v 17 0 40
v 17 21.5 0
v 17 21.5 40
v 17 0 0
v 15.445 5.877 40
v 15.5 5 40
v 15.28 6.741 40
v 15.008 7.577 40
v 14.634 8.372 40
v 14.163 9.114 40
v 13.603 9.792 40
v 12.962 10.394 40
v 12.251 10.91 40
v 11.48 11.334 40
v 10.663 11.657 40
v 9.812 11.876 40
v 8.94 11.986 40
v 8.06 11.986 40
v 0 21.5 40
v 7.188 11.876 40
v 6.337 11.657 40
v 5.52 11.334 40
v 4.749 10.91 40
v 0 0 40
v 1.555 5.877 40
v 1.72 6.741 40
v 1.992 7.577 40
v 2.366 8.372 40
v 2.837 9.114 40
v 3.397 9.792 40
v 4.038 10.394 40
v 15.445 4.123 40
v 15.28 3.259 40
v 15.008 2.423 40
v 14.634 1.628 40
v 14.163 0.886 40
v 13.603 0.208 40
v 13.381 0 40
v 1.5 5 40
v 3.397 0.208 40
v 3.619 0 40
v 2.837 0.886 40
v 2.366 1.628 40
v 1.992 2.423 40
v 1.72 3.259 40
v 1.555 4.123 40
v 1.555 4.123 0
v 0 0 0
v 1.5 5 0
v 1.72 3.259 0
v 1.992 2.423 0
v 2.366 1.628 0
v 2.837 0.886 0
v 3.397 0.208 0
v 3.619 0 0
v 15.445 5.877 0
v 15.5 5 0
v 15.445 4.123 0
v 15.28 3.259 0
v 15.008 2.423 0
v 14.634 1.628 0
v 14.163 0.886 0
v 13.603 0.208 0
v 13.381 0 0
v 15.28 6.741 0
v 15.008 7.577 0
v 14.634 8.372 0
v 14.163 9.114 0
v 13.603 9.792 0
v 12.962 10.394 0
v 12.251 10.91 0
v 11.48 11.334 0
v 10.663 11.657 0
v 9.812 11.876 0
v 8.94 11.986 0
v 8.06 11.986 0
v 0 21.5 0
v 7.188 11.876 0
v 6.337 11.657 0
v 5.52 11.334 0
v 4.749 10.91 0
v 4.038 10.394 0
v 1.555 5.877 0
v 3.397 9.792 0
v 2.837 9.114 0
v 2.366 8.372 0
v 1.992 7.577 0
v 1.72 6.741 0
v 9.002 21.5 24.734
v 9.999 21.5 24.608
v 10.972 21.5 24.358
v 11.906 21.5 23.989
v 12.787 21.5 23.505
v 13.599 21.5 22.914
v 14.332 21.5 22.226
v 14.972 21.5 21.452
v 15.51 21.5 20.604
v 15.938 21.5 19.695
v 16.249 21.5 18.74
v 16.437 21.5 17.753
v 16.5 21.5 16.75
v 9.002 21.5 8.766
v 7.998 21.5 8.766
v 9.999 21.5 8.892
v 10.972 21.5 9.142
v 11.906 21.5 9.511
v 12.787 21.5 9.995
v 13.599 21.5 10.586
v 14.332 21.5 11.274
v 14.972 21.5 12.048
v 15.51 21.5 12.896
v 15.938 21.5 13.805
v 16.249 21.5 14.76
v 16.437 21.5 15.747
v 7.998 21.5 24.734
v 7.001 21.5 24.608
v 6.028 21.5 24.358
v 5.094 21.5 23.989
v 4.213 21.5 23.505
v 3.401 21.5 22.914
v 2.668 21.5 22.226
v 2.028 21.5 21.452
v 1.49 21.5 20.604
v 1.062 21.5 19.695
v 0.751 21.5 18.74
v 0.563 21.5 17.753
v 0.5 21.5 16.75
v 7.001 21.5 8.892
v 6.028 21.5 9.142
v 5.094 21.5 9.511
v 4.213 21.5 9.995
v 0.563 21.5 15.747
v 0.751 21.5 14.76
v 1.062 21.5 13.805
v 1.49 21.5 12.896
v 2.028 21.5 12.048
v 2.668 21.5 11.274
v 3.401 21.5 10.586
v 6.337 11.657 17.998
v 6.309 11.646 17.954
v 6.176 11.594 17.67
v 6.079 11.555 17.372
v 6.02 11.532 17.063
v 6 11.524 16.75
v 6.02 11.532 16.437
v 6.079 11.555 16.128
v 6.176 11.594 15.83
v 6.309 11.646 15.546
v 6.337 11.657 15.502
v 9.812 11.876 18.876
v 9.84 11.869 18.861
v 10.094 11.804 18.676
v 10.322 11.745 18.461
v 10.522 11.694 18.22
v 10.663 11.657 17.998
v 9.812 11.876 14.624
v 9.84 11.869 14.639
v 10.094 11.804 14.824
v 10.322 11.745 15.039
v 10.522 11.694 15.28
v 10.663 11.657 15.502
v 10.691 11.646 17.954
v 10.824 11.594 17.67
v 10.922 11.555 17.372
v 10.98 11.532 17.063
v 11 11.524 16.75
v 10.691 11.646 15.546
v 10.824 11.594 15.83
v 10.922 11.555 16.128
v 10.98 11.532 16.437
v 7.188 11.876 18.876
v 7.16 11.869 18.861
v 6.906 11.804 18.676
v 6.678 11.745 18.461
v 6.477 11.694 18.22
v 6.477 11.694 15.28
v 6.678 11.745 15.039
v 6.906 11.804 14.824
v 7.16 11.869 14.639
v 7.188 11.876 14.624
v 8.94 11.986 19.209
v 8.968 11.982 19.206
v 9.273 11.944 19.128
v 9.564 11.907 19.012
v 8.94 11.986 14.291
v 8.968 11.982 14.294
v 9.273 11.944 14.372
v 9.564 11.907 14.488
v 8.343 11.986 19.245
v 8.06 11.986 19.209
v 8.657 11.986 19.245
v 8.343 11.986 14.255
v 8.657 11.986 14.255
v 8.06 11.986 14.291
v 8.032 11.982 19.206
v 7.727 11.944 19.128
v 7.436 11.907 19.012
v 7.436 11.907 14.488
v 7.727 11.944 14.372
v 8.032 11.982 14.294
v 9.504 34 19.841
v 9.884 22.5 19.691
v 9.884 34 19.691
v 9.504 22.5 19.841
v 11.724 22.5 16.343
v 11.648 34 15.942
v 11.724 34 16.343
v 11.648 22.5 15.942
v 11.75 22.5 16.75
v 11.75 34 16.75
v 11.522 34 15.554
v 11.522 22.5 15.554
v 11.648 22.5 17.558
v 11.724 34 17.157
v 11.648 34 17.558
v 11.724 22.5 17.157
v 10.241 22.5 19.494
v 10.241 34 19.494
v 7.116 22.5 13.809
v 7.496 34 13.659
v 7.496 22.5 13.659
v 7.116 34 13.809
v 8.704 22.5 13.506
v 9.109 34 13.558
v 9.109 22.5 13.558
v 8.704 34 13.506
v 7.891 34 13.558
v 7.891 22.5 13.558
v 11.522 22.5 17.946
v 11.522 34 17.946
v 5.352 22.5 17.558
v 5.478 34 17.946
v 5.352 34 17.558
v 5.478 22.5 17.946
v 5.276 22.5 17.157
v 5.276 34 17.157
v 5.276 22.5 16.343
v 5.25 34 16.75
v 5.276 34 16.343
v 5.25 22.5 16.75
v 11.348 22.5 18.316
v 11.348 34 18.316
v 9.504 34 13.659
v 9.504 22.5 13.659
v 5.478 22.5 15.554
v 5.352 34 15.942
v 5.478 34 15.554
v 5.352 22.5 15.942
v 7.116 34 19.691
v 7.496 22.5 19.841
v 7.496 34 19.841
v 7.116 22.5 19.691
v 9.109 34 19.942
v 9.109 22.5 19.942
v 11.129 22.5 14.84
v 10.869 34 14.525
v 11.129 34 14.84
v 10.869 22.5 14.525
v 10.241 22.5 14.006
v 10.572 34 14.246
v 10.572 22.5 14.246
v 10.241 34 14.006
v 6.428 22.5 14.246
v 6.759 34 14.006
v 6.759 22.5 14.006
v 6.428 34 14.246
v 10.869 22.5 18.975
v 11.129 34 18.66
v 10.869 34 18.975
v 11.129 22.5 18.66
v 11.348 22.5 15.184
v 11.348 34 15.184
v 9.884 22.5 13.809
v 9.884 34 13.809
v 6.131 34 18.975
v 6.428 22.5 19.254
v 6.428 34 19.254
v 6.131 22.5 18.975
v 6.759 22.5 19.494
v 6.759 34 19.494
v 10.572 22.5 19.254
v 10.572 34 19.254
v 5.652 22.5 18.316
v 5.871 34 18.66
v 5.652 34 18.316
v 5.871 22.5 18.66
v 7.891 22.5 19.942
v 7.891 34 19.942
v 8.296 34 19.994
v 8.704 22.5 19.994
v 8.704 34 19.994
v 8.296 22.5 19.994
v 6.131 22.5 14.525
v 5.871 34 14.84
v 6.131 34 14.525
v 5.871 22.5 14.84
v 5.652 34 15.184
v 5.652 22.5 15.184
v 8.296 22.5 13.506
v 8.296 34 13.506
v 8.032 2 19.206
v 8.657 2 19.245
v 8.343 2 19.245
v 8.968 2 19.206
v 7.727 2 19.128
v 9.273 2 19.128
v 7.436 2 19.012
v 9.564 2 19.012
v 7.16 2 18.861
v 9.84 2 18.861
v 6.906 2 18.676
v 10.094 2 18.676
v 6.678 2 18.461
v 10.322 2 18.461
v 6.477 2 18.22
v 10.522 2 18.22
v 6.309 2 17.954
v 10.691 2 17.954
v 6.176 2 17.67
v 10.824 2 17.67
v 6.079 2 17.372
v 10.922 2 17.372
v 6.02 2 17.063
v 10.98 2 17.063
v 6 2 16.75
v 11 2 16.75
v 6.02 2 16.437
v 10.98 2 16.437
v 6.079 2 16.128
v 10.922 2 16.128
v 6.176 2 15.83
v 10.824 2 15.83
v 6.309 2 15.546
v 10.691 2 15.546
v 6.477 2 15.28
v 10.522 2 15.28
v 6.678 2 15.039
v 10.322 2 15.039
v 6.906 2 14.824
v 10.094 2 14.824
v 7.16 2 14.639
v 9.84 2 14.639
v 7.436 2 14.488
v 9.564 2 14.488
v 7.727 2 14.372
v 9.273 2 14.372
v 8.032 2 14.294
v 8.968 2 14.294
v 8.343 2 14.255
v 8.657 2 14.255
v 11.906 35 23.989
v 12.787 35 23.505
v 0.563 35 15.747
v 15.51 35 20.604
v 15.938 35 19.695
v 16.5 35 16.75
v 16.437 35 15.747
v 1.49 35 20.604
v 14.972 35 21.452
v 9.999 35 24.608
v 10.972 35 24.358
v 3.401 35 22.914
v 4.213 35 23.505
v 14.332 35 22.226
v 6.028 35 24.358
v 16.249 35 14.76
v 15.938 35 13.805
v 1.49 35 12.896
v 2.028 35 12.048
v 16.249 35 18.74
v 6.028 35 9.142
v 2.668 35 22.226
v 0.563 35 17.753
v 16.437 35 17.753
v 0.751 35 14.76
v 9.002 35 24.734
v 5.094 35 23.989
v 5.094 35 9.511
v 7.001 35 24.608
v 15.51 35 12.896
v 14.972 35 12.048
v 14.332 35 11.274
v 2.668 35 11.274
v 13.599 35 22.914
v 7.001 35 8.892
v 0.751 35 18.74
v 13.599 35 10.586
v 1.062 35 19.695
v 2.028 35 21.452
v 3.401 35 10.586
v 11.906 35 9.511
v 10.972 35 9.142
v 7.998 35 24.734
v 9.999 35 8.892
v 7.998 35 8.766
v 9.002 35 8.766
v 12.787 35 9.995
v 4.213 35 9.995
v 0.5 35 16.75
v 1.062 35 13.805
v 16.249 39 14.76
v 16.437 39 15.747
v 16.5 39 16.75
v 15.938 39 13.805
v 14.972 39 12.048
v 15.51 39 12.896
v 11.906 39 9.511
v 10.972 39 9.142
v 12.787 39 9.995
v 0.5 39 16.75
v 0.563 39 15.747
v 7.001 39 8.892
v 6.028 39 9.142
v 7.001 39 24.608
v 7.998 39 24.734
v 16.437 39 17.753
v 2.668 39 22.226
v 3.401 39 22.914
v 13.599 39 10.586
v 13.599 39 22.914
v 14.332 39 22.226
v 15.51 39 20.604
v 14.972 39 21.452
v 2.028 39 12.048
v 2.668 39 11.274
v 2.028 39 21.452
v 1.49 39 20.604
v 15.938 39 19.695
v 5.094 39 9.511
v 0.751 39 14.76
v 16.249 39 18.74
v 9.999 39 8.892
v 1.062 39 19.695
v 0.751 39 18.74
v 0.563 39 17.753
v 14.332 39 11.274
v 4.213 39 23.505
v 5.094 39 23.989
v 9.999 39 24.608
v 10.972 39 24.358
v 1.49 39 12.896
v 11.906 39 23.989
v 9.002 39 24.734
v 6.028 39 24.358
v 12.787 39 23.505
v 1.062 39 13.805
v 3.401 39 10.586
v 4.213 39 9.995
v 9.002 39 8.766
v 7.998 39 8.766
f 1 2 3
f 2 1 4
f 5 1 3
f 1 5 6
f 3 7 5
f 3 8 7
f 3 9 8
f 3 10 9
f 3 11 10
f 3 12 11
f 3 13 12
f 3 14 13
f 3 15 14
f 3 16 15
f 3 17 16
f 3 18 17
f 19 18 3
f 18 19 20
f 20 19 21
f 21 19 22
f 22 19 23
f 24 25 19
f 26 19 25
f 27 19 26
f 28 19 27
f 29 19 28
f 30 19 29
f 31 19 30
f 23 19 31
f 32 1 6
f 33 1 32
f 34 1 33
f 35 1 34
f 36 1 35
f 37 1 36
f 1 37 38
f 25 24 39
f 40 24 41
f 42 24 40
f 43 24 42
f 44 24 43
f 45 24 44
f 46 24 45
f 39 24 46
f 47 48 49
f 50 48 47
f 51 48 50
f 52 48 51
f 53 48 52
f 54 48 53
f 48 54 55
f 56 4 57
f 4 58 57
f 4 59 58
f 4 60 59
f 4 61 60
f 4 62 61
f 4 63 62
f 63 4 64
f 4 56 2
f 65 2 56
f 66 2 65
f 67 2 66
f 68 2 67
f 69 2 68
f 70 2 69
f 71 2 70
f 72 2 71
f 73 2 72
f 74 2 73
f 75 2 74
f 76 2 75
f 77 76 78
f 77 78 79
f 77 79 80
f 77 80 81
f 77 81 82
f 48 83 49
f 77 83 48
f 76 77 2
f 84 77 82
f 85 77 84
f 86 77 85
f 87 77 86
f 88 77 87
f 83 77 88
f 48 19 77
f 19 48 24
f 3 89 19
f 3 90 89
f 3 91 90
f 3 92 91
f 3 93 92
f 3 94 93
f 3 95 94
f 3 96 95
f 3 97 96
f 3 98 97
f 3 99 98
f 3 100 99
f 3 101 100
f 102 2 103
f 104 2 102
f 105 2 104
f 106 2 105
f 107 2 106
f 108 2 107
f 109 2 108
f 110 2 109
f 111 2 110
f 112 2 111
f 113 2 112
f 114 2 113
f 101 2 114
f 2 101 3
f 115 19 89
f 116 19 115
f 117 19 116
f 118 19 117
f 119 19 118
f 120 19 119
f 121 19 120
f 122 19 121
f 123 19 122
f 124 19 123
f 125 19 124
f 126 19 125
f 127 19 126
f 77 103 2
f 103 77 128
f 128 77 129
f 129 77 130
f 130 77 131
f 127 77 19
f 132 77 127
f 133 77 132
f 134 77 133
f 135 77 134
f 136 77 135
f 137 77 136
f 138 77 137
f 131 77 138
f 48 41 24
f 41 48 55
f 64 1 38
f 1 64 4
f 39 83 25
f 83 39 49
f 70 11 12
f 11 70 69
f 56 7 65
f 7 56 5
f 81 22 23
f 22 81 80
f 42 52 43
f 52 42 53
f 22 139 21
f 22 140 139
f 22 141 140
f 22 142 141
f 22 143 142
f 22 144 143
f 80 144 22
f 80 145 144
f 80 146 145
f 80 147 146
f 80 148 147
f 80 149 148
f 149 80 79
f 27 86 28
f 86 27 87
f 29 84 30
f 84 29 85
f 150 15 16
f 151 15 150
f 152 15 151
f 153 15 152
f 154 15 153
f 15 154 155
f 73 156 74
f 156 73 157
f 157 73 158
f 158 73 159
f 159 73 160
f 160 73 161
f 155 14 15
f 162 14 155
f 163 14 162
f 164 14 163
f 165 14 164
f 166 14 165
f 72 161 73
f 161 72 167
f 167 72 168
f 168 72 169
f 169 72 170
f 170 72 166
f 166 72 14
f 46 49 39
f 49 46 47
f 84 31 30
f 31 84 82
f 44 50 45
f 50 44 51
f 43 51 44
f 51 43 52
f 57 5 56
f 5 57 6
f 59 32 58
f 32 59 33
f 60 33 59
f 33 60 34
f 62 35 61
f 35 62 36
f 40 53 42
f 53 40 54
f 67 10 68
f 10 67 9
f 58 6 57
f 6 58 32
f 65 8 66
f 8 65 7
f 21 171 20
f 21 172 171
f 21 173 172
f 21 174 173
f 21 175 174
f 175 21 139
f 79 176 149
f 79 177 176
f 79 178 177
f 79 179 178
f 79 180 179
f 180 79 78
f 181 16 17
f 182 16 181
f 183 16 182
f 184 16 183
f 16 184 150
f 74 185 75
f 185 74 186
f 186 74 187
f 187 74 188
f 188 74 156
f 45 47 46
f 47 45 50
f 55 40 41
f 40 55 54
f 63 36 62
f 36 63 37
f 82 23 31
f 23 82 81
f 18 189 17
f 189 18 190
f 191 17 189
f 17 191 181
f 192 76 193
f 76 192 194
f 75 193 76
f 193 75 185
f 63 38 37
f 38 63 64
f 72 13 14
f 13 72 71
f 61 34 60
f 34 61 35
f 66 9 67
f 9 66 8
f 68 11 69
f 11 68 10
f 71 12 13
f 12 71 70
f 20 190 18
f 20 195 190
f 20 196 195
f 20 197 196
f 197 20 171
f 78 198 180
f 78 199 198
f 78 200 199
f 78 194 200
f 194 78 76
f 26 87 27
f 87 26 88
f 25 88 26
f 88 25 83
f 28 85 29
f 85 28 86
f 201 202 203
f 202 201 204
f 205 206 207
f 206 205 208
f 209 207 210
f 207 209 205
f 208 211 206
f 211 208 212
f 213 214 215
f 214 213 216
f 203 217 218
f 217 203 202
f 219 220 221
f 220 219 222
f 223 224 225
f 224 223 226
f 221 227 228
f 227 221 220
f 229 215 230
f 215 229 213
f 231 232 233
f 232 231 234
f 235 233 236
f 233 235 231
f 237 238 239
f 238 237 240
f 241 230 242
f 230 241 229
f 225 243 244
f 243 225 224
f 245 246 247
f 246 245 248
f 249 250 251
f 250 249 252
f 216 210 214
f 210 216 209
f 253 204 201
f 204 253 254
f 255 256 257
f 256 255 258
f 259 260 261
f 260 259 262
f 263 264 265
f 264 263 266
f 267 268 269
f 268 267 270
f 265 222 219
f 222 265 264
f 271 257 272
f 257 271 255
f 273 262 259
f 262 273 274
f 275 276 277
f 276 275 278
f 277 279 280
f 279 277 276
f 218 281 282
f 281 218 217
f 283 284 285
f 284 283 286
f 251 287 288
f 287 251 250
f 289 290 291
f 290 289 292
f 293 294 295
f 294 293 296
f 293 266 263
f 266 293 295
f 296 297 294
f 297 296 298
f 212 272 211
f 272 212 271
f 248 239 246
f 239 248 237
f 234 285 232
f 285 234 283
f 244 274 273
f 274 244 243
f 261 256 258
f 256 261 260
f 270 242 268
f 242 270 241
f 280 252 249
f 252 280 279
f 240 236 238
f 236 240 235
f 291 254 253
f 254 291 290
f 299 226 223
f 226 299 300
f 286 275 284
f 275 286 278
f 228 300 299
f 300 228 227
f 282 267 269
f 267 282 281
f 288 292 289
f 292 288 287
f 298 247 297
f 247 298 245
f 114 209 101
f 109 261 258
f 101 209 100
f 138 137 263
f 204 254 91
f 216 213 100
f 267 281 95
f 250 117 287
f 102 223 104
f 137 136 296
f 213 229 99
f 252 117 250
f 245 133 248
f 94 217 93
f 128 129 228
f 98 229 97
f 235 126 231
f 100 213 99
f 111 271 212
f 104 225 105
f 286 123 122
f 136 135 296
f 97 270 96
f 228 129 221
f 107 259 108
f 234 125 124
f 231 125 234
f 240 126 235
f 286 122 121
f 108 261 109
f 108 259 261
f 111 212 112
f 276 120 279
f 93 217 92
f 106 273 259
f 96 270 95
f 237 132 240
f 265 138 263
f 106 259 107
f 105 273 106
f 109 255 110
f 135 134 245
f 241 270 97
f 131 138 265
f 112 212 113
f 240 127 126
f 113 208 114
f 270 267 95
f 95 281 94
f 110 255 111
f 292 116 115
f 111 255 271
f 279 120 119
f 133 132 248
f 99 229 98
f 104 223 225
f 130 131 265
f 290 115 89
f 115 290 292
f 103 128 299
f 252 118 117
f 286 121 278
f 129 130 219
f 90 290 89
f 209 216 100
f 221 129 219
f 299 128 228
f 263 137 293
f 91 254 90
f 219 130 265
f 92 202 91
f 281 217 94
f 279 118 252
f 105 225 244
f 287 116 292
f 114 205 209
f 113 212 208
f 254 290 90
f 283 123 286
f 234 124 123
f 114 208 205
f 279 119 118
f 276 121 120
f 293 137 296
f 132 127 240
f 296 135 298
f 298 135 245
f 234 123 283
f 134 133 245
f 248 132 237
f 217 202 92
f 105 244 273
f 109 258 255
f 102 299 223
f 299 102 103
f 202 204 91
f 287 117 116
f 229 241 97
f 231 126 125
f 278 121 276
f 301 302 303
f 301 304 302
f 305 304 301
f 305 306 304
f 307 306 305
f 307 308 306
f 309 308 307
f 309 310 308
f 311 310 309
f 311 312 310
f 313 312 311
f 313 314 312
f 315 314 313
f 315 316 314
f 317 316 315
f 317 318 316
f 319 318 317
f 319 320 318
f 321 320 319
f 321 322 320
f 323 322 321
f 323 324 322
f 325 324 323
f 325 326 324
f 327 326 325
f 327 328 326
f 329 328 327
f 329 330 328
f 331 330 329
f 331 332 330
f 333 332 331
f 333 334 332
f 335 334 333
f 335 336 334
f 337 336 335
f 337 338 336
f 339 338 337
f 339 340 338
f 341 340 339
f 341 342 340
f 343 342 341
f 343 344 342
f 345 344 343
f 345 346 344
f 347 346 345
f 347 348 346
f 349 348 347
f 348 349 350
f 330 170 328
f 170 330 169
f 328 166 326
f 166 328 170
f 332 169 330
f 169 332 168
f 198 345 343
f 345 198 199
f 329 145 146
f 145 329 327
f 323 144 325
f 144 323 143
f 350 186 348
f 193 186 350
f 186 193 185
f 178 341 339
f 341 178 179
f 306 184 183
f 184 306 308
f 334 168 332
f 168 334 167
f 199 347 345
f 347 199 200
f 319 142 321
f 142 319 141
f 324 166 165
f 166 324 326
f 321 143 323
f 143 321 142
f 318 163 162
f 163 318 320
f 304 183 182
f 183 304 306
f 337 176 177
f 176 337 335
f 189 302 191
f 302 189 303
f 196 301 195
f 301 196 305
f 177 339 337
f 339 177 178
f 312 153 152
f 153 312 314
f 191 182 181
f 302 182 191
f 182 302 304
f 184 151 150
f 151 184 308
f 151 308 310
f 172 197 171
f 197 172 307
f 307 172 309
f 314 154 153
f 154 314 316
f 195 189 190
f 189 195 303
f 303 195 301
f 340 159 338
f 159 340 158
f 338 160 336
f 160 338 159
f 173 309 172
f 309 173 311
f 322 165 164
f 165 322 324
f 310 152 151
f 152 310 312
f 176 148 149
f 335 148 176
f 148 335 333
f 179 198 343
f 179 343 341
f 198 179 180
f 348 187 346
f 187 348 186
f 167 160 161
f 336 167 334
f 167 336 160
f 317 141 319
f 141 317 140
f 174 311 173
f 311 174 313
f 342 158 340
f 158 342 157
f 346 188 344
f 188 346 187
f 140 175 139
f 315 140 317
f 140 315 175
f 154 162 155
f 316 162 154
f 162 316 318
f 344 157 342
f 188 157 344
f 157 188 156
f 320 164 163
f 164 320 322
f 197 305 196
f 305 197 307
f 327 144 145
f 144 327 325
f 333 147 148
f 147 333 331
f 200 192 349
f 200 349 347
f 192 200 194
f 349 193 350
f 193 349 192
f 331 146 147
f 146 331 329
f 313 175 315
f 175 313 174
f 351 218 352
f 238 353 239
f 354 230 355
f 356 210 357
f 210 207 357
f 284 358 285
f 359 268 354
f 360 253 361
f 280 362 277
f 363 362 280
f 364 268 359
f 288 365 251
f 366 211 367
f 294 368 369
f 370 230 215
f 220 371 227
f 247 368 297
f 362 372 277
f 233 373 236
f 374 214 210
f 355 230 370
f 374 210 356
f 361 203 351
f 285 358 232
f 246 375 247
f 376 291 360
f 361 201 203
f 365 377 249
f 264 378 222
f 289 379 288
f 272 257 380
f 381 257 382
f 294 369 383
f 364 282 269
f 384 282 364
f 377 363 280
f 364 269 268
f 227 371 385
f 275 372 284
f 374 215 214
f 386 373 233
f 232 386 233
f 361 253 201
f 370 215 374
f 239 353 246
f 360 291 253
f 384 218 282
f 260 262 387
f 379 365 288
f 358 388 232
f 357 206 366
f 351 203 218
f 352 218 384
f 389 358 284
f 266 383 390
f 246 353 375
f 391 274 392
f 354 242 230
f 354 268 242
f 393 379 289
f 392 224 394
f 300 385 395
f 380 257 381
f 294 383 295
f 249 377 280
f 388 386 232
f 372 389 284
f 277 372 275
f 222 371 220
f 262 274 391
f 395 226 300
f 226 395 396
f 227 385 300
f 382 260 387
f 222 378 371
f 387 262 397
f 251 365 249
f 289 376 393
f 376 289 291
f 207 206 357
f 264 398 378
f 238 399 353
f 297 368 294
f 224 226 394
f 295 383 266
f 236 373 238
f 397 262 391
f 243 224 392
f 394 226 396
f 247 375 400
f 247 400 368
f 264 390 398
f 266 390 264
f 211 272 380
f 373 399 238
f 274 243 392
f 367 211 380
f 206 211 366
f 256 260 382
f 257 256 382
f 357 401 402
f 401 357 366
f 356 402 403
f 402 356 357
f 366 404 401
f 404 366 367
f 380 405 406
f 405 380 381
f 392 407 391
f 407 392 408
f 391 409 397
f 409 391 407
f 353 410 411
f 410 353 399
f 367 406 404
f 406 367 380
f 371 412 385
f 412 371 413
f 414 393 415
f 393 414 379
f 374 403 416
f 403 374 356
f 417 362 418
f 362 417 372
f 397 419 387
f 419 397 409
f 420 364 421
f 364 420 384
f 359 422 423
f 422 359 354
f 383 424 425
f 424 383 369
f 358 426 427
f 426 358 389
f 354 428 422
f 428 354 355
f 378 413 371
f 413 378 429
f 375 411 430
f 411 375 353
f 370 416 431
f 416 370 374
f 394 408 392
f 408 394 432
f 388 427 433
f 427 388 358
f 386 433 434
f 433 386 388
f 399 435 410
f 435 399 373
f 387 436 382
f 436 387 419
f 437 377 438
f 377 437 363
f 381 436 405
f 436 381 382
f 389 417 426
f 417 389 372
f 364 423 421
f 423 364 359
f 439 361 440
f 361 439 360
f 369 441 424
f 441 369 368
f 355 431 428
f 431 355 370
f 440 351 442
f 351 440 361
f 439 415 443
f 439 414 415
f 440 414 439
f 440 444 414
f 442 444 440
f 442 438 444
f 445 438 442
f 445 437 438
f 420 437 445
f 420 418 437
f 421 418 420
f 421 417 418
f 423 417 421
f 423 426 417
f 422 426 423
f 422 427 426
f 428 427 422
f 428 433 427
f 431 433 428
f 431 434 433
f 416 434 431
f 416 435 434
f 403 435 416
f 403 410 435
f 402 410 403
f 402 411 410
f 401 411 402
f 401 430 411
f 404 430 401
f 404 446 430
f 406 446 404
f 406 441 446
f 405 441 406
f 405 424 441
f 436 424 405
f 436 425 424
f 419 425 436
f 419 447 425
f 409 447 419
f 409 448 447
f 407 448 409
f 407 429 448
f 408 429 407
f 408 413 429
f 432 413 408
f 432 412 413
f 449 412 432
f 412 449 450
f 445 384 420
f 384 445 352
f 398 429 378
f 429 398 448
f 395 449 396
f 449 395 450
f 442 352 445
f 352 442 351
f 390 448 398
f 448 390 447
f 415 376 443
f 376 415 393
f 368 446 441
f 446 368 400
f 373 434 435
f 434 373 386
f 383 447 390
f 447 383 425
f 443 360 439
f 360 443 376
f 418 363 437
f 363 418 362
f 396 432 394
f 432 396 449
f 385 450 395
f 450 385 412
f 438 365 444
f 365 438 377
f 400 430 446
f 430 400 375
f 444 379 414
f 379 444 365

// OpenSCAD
        /*
        Title: Candy dishwasher - Door handle front plate
        */
        $fn=20;
        
        text = "Center";
        font = "Liberation Sans";
        
        module body(){
            color("green")
            
            minkowski() {
        cube(size = [17, 21.5, 40], center = false);
        translate([0,0,0])sphere(0);
        }
            
        
        }
        
        module hole(){
            translate([8.5,5,-2]) 
            cylinder(r=7,h=44,$fn=50);
        }
        
        
        module leftPartOfbranch(){
            color("orange")
            cylinder(r1=8, r2=3.25,h=1,$fn=50);
        }
        
        module rightPartOfbranch(){
            color("white")
            cylinder(r1=3.25, r2=8,h=1,$fn=50);
        }
        
        module branch(){
            color("blue")
            cylinder(r=3.25,h=13.5,$fn=50);
        }
        
        
        
        
        
        module innerBranch(){
            color("grey")
            cylinder(r=2.5,h=11,$fn=50);
        }
          
          
        module plot(){
            color("red")
            cylinder(r=8,h=4,$fn=50);
        }
        
        
        union() {
            difference(){
                body();
                hole();
            };
            translate([8.5,21.5,16.75])
            rotate([-90])
            branch();
            translate([8.5,21.5,16.75])
            rotate([-90])
            leftPartOfbranch();
            translate([8.5,2,16.75])
            rotate([-90])
            innerBranch();
            translate([8.5,21.5+12.5,16.75])
            rotate([-90])
            rightPartOfbranch();
            translate([8.5,21.5+13.5,16.75])
            rotate([-90])
            plot();    
        }
    
